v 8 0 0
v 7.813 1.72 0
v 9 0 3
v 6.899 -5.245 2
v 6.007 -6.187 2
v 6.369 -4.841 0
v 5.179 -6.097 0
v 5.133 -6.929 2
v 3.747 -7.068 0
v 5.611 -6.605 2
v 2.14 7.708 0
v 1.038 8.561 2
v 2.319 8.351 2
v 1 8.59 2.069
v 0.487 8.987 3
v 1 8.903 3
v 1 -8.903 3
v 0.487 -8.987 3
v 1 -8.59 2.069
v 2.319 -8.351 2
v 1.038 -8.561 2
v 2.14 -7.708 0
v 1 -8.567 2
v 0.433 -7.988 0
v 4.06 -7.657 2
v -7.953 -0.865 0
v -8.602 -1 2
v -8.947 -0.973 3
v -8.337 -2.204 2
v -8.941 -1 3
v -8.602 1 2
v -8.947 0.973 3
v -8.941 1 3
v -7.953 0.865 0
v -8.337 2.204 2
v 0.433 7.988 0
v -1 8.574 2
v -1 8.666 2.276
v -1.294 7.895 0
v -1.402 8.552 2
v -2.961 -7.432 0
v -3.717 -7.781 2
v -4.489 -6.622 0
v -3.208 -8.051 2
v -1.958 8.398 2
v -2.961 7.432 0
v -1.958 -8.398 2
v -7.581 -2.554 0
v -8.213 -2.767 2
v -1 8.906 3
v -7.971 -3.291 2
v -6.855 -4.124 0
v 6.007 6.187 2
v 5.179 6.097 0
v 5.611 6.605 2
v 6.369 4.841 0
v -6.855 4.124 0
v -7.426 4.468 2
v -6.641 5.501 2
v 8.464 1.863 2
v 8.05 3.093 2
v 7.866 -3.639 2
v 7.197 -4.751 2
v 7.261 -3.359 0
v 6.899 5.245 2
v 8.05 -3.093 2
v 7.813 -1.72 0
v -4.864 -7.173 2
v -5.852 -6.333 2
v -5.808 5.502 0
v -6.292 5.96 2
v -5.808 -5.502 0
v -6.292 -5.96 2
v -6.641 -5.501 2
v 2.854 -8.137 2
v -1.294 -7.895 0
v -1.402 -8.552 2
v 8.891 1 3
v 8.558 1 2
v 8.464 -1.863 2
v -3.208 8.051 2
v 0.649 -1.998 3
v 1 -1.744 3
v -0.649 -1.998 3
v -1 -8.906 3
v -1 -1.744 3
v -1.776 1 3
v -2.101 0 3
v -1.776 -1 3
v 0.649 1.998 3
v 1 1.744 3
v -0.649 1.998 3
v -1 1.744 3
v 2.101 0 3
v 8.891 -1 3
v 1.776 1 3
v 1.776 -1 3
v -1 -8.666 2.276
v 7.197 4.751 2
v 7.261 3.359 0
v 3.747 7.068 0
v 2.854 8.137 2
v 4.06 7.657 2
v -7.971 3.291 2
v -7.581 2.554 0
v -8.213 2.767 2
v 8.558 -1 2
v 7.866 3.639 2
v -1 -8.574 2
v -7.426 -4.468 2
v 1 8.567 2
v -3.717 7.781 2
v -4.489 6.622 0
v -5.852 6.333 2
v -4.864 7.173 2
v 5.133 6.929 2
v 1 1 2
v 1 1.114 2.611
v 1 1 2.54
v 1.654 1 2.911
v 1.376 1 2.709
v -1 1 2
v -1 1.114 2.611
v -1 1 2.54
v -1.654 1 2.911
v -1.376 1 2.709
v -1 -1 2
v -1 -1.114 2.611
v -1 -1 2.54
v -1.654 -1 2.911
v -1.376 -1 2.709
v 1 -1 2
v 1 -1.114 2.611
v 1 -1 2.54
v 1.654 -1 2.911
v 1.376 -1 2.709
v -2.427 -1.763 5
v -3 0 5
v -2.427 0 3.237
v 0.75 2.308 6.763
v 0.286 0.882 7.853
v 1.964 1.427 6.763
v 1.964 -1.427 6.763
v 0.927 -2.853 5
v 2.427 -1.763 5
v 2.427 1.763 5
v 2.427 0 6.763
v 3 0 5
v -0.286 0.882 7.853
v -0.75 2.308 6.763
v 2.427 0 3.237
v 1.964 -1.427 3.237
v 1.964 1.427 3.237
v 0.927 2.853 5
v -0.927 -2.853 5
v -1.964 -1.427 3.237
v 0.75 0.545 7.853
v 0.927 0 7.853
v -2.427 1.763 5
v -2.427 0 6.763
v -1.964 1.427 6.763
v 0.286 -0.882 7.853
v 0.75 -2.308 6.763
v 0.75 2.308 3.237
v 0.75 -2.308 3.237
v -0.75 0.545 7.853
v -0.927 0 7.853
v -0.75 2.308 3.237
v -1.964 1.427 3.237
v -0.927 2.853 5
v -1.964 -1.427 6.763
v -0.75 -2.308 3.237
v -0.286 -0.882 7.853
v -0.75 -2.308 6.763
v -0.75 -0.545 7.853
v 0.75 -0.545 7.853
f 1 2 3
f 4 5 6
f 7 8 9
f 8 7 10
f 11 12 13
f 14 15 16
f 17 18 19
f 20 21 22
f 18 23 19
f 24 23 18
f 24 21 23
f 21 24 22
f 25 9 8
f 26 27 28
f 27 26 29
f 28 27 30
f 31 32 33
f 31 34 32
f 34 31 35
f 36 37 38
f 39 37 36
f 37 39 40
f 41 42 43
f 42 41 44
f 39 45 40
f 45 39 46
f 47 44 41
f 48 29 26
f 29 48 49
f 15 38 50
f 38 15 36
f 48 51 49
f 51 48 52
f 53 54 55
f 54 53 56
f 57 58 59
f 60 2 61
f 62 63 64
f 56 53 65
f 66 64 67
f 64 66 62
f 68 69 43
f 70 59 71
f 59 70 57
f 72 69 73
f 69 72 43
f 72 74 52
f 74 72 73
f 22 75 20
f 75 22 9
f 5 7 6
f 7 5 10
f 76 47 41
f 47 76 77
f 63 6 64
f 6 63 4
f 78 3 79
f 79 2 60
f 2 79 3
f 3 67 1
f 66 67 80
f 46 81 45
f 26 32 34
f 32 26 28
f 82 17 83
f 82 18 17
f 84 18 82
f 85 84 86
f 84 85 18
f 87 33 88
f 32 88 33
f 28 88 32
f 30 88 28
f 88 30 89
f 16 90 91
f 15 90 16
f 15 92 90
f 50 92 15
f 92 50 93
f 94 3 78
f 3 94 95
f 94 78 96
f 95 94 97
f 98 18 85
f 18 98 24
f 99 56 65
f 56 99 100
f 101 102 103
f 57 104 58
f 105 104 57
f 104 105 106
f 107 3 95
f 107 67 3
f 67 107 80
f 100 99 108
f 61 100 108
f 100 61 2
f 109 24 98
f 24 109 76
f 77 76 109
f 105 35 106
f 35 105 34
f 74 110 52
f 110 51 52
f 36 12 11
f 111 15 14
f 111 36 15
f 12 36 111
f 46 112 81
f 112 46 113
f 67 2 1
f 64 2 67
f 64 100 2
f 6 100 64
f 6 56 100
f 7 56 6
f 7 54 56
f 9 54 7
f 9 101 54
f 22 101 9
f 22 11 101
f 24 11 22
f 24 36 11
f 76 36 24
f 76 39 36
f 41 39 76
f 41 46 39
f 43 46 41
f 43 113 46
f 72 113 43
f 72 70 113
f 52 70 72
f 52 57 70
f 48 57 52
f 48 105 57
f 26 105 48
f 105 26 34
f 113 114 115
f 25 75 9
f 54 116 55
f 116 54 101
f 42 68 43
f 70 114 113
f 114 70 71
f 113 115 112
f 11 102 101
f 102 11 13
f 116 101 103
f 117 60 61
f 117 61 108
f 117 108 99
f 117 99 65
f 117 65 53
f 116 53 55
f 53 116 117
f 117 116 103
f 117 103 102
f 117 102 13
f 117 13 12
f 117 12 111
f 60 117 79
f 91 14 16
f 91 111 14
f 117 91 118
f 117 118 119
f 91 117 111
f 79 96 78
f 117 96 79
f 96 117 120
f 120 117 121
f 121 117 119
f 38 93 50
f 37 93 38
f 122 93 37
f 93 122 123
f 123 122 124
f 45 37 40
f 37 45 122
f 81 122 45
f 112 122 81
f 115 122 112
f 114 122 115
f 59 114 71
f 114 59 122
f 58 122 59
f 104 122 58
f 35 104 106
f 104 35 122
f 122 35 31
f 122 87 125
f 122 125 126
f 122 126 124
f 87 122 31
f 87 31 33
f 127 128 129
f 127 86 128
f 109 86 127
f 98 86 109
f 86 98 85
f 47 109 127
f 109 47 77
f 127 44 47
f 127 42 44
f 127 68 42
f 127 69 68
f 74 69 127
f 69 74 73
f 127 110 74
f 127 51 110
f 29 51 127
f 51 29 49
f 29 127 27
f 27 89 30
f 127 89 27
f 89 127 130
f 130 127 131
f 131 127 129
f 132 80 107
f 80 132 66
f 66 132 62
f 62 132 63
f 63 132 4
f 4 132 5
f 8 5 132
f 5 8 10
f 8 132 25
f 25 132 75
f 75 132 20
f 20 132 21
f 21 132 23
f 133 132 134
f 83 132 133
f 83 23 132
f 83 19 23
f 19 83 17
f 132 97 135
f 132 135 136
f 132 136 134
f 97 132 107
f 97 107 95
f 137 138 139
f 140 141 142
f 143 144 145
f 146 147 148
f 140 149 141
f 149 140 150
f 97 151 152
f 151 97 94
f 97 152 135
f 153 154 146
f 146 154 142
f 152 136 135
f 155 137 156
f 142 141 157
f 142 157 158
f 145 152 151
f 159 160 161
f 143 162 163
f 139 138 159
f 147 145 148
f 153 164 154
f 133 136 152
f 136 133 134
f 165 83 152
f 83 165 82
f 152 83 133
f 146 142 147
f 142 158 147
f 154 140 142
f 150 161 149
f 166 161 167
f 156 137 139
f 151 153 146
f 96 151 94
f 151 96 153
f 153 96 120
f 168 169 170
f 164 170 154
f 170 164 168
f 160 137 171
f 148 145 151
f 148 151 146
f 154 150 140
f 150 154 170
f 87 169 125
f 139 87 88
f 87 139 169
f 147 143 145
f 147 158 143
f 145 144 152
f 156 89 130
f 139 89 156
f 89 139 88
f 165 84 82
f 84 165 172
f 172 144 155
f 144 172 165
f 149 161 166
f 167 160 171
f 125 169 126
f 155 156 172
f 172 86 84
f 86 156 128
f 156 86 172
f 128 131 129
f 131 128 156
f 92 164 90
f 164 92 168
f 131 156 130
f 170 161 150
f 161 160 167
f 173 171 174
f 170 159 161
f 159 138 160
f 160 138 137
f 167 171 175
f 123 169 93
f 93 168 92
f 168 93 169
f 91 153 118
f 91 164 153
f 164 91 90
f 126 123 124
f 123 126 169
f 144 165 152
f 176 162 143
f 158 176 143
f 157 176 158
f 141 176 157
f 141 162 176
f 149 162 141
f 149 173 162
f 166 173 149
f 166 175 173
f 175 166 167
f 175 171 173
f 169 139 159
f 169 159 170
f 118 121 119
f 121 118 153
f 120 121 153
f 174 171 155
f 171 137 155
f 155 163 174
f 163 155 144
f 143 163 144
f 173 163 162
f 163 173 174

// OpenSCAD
// file: CommonModules.scad
//    $$$$$$\   $$$$$$\   $$$$$$\  $$\   $$\ $$$$$$\ $$$$$$$\  $$$$$$$$\ 
//    $$  __$$\ $$  __$$\ $$  __$$\ $$ |  $$ |\_$$  _|$$  __$$\ $$  _____|
//    $$ /  $$ |$$ /  \__|$$ /  $$ |$$ |  $$ |  $$ |  $$ |  $$ |$$ |      
//    $$$$$$$$ |$$ |      $$ |  $$ |$$ |  $$ |  $$ |  $$$$$$$  |$$$$$\    
//    $$  __$$ |$$ |      $$ |  $$ |$$ |  $$ |  $$ |  $$  __$$< $$  __|   
//    $$ |  $$ |$$ |  $$\ $$ $$\$$ |$$ |  $$ |  $$ |  $$ |  $$ |$$ |      
//    $$ |  $$ |\$$$$$$  |\$$$$$$ / \$$$$$$  |$$$$$$\ $$ |  $$ |$$$$$$$$\ 
//    \__|  \__| \______/  \___$$$\  \______/ \______|\__|  \__|\________|
//                            \___|                                      
//      
//       Print and play - OpenScad project - by Bekkalizer - GPLv3
// 
// This file is part of the Acquire stl project.
// Copyright (C) 2025 Bekkalizer
//
// Acquire stl project is free software: you can redistribute it and/or modify
// it under the terms of the GNU General Public License as published
// by the Free Software Foundation, either version 3 of the License,
// or (at your option) any later version.
//
// Acquire stl project is distributed in the hope that it will be useful,
// but WITHOUT ANY WARRANTY; without even the implied warranty of
// MERCHANTABILITY or FITNESS FOR A PARTICULAR PURPOSE. See the
// GNU General Public License for more details.
//
// You should have received a copy of the GNU General Public License
// along with this program. If not, see <https://www.gnu.org/licenses/>.

module cube_with_extruded_bottom( cube_size = [19.5, 19.5, 5] ) {
    //Main build script parameters:
    max_width = 19.2;
    top_lip = 2;
    top_height = 3;
    //Calculated hole size:
    inside_margins = 1;
    hole_width = max_width - 2 * (top_lip) + inside_margins;
    hole_height = top_height + inside_margins;
    
    hole_size = [hole_width, hole_width, hole_height]; // Hole dimensions (same height as cube)
    hole_offset = [(cube_size[0] - hole_size[0]) / 2, (cube_size[1] - hole_size[1]) / 2, -0.1]; // Centered on bottom
    difference() {
        // Main Cube
        cube(cube_size);
        
        // Hole Cube (subtracting from bottom)
        translate(hole_offset)
            cube(hole_size);
    }
}
// main file
//    $$$$$$\   $$$$$$\   $$$$$$\  $$\   $$\ $$$$$$\ $$$$$$$\  $$$$$$$$\ 
//    $$  __$$\ $$  __$$\ $$  __$$\ $$ |  $$ |\_$$  _|$$  __$$\ $$  _____|
//    $$ /  $$ |$$ /  \__|$$ /  $$ |$$ |  $$ |  $$ |  $$ |  $$ |$$ |      
//    $$$$$$$$ |$$ |      $$ |  $$ |$$ |  $$ |  $$ |  $$$$$$$  |$$$$$\    
//    $$  __$$ |$$ |      $$ |  $$ |$$ |  $$ |  $$ |  $$  __$$< $$  __|   
//    $$ |  $$ |$$ |  $$\ $$ $$\$$ |$$ |  $$ |  $$ |  $$ |  $$ |$$ |      
//    $$ |  $$ |\$$$$$$  |\$$$$$$ / \$$$$$$  |$$$$$$\ $$ |  $$ |$$$$$$$$\ 
//    \__|  \__| \______/  \___$$$\  \______/ \______|\__|  \__|\________|
//                            \___|                                      
//      
//       Print and play - OpenScad project - by Bekkalizer - GPLv3
// 
// This file is part of the Acquire stl project.
// Copyright (C) 2025 Bekkalizer
//
// Acquire stl project is free software: you can redistribute it and/or modify
// it under the terms of the GNU General Public License as published
// by the Free Software Foundation, either version 3 of the License,
// or (at your option) any later version.
//
// Acquire stl project is distributed in the hope that it will be useful,
// but WITHOUT ANY WARRANTY; without even the implied warranty of
// MERCHANTABILITY or FITNESS FOR A PARTICULAR PURPOSE. See the
// GNU General Public License for more details.
//
// You should have received a copy of the GNU General Public License
// along with this program. If not, see <https://www.gnu.org/licenses/>.

use <CommonModules.scad>

// ============== Parameters ==============
crown_body_bottom_radius = 8;
crown_body_top_radius = 9;
crown_body_height = 3;
crown_sphere_radius = 3;

cage_width = 2;
cage_height = 1;


union () {
    //crown_body
    difference () {
        cylinder(crown_body_height, crown_body_bottom_radius, crown_body_top_radius);
        translate([cage_width/2, cage_width/2, crown_body_height-cage_height])
            cube([crown_body_top_radius,crown_body_top_radius,cage_height]);
        translate([-cage_width/2-crown_body_top_radius, cage_width/2, crown_body_height-cage_height])
            cube([crown_body_top_radius,crown_body_top_radius,cage_height]);
        translate([-cage_width/2-crown_body_top_radius, -cage_width/2-crown_body_top_radius, crown_body_height-cage_height])
            cube([crown_body_top_radius,crown_body_top_radius,cage_height]);
        translate([cage_width/2, -cage_width/2-crown_body_top_radius, crown_body_height-cage_height])
            cube([crown_body_top_radius,crown_body_top_radius,cage_height]);
    }
    
    translate([0,0,crown_body_height+crown_sphere_radius-cage_height])
        sphere(crown_sphere_radius);
}
